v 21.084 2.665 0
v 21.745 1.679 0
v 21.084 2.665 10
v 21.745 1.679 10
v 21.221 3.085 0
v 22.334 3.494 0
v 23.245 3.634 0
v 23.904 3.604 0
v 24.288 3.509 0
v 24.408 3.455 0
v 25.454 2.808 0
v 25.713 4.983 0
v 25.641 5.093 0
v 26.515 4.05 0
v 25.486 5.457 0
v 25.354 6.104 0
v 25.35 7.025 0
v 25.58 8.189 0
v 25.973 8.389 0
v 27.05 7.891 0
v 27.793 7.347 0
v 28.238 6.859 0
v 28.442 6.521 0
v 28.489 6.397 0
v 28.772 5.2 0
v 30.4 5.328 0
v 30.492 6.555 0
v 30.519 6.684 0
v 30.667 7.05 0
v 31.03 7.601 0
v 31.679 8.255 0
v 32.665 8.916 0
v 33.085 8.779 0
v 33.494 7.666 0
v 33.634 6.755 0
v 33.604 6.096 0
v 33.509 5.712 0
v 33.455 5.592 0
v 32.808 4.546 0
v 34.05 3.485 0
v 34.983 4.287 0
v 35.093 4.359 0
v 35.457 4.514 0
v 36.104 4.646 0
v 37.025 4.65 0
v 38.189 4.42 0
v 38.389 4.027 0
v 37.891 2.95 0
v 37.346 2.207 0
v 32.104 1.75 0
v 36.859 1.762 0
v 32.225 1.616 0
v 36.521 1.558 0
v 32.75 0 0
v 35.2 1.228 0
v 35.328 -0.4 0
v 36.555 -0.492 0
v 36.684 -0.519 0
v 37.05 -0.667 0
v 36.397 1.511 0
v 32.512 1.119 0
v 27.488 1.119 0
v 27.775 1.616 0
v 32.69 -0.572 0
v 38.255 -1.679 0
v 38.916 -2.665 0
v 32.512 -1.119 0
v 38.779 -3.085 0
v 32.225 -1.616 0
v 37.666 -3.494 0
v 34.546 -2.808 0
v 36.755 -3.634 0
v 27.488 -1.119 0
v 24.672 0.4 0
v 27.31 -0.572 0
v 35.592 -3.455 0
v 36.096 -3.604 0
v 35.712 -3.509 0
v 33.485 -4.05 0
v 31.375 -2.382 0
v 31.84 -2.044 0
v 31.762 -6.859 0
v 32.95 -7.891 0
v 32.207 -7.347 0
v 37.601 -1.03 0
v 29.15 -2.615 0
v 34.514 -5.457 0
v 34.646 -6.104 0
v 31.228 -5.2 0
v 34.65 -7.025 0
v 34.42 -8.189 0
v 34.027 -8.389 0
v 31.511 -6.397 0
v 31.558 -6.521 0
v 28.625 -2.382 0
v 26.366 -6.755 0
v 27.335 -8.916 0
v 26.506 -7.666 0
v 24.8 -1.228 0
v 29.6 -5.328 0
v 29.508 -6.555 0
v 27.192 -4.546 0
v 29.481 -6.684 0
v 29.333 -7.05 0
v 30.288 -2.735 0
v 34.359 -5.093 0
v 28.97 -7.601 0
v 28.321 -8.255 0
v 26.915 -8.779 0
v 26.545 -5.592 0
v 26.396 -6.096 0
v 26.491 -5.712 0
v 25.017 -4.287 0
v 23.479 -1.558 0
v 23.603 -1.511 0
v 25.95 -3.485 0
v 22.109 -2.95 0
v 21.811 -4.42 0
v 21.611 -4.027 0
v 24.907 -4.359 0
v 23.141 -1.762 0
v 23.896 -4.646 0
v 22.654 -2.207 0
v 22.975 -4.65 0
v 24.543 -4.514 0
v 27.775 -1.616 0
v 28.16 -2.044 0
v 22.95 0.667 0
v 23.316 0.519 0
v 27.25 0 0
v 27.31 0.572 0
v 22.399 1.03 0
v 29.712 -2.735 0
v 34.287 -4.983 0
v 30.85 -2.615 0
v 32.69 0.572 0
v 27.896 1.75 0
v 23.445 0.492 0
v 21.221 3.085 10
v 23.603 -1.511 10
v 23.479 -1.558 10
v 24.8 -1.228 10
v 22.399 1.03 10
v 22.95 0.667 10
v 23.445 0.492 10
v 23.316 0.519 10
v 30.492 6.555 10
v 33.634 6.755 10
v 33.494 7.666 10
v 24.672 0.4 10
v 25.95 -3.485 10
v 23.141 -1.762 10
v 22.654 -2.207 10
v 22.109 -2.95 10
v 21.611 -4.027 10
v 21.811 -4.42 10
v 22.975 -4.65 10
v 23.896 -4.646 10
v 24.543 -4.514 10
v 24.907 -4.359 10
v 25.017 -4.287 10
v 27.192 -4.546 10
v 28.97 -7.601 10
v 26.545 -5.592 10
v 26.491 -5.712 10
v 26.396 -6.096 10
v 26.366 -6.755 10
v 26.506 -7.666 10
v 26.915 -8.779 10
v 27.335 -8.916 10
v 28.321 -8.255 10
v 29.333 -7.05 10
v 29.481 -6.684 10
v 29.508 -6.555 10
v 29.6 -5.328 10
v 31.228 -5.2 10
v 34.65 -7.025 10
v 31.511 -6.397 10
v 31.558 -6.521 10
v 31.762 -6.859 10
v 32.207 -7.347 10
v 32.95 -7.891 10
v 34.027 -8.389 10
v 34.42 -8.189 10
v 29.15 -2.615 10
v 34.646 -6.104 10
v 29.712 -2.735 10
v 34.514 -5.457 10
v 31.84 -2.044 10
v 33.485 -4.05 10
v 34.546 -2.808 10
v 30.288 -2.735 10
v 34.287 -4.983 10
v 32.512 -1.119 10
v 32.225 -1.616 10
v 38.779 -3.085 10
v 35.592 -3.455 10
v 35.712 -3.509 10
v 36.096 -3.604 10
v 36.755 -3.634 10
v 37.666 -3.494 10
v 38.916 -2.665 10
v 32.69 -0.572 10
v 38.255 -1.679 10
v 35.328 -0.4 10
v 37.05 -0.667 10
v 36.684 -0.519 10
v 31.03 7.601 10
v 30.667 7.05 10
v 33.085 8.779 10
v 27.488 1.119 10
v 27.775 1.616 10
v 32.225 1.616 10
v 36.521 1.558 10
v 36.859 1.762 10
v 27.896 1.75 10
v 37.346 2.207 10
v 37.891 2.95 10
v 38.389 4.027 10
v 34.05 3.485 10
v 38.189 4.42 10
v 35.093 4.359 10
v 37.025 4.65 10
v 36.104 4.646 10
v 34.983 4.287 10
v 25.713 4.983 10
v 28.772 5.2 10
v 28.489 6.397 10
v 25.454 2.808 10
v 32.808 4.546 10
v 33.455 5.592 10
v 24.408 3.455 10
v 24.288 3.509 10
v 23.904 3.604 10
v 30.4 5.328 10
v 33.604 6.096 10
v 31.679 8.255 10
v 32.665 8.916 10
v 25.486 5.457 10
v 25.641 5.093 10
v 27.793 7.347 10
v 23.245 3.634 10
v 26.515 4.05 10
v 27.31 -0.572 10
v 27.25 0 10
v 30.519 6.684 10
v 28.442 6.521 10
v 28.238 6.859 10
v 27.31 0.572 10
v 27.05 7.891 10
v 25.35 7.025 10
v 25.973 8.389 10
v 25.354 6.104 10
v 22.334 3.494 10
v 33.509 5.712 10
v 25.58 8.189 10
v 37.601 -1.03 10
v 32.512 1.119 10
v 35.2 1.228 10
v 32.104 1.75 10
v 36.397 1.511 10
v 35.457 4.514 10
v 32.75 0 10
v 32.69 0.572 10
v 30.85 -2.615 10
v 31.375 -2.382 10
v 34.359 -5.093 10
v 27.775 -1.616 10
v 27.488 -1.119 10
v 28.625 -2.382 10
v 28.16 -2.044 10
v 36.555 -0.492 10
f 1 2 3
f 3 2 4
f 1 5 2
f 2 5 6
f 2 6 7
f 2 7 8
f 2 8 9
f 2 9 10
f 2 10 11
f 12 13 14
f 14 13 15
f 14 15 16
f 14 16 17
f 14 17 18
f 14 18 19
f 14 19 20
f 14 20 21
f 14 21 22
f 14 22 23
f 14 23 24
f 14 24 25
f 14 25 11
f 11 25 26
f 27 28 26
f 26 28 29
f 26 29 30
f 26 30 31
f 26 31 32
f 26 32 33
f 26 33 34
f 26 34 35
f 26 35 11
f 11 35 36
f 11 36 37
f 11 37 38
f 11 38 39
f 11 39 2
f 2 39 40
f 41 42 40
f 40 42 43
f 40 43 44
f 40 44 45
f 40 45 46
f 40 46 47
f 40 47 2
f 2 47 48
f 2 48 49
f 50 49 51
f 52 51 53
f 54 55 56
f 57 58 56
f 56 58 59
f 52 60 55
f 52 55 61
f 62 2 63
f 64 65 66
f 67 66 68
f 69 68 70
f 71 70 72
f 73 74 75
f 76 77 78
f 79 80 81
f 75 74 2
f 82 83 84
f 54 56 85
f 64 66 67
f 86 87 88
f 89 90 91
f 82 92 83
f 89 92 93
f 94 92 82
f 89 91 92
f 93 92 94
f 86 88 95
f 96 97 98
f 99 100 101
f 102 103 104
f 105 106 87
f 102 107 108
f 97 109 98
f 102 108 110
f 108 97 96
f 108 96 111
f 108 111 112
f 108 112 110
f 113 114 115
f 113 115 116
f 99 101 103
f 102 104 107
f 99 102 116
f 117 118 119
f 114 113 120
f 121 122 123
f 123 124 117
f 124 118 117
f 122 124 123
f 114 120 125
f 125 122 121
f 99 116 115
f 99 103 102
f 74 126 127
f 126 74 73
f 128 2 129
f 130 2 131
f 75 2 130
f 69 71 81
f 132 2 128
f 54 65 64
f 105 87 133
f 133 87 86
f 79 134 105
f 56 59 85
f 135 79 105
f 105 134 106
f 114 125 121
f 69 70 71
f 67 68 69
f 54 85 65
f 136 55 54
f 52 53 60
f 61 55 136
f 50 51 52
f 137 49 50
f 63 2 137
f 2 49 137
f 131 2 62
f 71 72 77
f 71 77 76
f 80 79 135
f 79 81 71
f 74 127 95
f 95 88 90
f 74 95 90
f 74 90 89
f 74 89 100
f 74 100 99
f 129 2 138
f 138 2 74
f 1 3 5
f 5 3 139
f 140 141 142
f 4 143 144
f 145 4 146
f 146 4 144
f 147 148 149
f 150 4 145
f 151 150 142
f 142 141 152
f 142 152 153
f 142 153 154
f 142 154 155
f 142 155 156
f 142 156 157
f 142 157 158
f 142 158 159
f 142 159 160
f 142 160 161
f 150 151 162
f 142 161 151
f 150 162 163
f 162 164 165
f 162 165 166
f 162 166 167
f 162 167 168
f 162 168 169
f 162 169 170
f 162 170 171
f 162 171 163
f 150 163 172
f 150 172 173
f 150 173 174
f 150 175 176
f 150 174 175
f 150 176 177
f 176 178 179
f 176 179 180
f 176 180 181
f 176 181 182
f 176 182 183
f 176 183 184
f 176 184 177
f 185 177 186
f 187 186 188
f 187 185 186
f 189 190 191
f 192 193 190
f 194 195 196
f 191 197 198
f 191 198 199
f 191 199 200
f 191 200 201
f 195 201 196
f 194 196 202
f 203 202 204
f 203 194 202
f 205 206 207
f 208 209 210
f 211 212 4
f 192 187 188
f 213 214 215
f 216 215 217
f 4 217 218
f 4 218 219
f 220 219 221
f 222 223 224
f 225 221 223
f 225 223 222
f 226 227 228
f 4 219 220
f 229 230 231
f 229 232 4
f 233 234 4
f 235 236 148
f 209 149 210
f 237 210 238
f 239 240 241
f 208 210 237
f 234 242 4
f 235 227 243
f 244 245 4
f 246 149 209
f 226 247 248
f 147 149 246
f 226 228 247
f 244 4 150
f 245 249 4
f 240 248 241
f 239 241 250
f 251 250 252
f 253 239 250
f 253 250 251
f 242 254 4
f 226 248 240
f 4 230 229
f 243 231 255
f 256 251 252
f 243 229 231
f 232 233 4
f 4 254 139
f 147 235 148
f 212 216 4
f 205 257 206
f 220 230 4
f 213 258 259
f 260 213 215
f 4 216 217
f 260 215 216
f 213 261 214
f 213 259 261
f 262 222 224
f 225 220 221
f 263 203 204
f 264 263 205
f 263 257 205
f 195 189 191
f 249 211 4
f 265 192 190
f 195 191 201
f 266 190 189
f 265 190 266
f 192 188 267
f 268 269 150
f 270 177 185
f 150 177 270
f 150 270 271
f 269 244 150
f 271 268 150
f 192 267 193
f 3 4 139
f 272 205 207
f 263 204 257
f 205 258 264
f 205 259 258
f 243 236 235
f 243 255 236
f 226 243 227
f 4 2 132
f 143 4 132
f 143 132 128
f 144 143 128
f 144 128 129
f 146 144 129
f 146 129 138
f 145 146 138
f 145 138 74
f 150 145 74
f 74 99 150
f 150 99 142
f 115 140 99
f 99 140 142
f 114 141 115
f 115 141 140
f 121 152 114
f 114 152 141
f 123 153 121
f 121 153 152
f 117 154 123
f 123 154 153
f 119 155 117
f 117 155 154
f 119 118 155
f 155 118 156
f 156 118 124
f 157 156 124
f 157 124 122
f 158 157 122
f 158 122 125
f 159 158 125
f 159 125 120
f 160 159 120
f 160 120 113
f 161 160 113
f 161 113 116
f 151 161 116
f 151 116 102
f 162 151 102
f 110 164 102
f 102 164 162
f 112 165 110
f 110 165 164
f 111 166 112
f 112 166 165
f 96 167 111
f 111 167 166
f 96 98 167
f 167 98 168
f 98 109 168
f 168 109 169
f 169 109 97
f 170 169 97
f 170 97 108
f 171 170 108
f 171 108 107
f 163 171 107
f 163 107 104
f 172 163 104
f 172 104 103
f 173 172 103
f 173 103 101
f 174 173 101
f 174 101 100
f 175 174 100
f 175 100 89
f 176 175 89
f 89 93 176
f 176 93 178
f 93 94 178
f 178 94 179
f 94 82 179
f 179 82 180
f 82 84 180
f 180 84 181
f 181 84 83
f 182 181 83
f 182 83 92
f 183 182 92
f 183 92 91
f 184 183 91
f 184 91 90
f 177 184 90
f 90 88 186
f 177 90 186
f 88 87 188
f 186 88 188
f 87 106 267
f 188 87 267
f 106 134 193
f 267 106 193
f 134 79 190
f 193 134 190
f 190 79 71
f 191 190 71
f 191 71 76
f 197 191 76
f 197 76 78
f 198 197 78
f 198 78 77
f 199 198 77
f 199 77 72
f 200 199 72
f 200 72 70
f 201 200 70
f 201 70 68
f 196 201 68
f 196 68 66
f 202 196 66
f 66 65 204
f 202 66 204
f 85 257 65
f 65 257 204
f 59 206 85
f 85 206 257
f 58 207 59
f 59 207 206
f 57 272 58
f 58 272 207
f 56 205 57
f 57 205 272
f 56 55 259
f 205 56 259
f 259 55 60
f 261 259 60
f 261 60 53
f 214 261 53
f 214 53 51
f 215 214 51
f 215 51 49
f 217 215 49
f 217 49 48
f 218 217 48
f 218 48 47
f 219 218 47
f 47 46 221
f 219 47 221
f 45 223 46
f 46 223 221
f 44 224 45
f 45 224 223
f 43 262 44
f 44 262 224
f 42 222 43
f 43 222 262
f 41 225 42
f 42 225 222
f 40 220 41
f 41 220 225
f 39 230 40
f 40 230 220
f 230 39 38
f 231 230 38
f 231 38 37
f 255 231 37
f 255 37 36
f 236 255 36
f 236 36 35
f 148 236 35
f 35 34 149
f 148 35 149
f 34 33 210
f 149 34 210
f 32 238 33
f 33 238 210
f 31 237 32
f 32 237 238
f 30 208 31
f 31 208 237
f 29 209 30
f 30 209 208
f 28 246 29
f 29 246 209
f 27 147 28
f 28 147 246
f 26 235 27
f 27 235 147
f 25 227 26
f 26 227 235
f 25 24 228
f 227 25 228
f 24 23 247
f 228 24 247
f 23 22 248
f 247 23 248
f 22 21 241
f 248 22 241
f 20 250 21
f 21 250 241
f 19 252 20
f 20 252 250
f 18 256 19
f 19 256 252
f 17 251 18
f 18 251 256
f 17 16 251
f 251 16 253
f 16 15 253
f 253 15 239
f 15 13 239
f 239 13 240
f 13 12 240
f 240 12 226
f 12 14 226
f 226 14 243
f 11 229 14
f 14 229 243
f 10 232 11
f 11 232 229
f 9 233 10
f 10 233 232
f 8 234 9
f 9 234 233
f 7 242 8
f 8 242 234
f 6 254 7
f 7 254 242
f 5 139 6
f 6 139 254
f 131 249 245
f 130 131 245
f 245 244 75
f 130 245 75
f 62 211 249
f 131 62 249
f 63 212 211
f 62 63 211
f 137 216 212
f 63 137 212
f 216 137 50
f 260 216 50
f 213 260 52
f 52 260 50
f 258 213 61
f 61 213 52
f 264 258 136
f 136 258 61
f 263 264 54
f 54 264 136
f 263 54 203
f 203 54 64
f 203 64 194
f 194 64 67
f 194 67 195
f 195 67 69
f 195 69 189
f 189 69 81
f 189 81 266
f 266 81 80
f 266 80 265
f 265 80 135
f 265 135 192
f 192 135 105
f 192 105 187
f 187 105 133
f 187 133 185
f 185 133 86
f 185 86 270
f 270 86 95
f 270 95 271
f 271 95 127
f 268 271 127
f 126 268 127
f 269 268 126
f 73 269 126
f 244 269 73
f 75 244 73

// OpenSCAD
// PRUSA iteration3
// NEMA 17 extruder small gear
// GNU GPL v3
// Modified by Sam Sheffield <hello@samsheffield.com>
// Original by Josef Průša <iam@josefprusa.cz> and contributors
// http://www.reprap.org/wiki/Prusa_Mendel
// http://prusamendel.org


include <external_gear_script.scad>;

module small_gear()
{
	translate([0,0,0])
	{

		translate ([30,0,0])
		difference(){
			rotate ([0,0,360*-1/20]) gear (number_of_teeth=8,
			circular_pitch=335,rim_thickness=20,bore_diameter=0,hub_thickness=0);


			difference(){ 
				translate ([0,0,-1]) cylinder(r=5.5/2, h=25, $fn=30);
				translate ([-5,1.75,0])cube([10,10,30]);
			}
		}
	}
}

difference(){
small_gear();
translate ([20,-10,10]) cube(20);
}
